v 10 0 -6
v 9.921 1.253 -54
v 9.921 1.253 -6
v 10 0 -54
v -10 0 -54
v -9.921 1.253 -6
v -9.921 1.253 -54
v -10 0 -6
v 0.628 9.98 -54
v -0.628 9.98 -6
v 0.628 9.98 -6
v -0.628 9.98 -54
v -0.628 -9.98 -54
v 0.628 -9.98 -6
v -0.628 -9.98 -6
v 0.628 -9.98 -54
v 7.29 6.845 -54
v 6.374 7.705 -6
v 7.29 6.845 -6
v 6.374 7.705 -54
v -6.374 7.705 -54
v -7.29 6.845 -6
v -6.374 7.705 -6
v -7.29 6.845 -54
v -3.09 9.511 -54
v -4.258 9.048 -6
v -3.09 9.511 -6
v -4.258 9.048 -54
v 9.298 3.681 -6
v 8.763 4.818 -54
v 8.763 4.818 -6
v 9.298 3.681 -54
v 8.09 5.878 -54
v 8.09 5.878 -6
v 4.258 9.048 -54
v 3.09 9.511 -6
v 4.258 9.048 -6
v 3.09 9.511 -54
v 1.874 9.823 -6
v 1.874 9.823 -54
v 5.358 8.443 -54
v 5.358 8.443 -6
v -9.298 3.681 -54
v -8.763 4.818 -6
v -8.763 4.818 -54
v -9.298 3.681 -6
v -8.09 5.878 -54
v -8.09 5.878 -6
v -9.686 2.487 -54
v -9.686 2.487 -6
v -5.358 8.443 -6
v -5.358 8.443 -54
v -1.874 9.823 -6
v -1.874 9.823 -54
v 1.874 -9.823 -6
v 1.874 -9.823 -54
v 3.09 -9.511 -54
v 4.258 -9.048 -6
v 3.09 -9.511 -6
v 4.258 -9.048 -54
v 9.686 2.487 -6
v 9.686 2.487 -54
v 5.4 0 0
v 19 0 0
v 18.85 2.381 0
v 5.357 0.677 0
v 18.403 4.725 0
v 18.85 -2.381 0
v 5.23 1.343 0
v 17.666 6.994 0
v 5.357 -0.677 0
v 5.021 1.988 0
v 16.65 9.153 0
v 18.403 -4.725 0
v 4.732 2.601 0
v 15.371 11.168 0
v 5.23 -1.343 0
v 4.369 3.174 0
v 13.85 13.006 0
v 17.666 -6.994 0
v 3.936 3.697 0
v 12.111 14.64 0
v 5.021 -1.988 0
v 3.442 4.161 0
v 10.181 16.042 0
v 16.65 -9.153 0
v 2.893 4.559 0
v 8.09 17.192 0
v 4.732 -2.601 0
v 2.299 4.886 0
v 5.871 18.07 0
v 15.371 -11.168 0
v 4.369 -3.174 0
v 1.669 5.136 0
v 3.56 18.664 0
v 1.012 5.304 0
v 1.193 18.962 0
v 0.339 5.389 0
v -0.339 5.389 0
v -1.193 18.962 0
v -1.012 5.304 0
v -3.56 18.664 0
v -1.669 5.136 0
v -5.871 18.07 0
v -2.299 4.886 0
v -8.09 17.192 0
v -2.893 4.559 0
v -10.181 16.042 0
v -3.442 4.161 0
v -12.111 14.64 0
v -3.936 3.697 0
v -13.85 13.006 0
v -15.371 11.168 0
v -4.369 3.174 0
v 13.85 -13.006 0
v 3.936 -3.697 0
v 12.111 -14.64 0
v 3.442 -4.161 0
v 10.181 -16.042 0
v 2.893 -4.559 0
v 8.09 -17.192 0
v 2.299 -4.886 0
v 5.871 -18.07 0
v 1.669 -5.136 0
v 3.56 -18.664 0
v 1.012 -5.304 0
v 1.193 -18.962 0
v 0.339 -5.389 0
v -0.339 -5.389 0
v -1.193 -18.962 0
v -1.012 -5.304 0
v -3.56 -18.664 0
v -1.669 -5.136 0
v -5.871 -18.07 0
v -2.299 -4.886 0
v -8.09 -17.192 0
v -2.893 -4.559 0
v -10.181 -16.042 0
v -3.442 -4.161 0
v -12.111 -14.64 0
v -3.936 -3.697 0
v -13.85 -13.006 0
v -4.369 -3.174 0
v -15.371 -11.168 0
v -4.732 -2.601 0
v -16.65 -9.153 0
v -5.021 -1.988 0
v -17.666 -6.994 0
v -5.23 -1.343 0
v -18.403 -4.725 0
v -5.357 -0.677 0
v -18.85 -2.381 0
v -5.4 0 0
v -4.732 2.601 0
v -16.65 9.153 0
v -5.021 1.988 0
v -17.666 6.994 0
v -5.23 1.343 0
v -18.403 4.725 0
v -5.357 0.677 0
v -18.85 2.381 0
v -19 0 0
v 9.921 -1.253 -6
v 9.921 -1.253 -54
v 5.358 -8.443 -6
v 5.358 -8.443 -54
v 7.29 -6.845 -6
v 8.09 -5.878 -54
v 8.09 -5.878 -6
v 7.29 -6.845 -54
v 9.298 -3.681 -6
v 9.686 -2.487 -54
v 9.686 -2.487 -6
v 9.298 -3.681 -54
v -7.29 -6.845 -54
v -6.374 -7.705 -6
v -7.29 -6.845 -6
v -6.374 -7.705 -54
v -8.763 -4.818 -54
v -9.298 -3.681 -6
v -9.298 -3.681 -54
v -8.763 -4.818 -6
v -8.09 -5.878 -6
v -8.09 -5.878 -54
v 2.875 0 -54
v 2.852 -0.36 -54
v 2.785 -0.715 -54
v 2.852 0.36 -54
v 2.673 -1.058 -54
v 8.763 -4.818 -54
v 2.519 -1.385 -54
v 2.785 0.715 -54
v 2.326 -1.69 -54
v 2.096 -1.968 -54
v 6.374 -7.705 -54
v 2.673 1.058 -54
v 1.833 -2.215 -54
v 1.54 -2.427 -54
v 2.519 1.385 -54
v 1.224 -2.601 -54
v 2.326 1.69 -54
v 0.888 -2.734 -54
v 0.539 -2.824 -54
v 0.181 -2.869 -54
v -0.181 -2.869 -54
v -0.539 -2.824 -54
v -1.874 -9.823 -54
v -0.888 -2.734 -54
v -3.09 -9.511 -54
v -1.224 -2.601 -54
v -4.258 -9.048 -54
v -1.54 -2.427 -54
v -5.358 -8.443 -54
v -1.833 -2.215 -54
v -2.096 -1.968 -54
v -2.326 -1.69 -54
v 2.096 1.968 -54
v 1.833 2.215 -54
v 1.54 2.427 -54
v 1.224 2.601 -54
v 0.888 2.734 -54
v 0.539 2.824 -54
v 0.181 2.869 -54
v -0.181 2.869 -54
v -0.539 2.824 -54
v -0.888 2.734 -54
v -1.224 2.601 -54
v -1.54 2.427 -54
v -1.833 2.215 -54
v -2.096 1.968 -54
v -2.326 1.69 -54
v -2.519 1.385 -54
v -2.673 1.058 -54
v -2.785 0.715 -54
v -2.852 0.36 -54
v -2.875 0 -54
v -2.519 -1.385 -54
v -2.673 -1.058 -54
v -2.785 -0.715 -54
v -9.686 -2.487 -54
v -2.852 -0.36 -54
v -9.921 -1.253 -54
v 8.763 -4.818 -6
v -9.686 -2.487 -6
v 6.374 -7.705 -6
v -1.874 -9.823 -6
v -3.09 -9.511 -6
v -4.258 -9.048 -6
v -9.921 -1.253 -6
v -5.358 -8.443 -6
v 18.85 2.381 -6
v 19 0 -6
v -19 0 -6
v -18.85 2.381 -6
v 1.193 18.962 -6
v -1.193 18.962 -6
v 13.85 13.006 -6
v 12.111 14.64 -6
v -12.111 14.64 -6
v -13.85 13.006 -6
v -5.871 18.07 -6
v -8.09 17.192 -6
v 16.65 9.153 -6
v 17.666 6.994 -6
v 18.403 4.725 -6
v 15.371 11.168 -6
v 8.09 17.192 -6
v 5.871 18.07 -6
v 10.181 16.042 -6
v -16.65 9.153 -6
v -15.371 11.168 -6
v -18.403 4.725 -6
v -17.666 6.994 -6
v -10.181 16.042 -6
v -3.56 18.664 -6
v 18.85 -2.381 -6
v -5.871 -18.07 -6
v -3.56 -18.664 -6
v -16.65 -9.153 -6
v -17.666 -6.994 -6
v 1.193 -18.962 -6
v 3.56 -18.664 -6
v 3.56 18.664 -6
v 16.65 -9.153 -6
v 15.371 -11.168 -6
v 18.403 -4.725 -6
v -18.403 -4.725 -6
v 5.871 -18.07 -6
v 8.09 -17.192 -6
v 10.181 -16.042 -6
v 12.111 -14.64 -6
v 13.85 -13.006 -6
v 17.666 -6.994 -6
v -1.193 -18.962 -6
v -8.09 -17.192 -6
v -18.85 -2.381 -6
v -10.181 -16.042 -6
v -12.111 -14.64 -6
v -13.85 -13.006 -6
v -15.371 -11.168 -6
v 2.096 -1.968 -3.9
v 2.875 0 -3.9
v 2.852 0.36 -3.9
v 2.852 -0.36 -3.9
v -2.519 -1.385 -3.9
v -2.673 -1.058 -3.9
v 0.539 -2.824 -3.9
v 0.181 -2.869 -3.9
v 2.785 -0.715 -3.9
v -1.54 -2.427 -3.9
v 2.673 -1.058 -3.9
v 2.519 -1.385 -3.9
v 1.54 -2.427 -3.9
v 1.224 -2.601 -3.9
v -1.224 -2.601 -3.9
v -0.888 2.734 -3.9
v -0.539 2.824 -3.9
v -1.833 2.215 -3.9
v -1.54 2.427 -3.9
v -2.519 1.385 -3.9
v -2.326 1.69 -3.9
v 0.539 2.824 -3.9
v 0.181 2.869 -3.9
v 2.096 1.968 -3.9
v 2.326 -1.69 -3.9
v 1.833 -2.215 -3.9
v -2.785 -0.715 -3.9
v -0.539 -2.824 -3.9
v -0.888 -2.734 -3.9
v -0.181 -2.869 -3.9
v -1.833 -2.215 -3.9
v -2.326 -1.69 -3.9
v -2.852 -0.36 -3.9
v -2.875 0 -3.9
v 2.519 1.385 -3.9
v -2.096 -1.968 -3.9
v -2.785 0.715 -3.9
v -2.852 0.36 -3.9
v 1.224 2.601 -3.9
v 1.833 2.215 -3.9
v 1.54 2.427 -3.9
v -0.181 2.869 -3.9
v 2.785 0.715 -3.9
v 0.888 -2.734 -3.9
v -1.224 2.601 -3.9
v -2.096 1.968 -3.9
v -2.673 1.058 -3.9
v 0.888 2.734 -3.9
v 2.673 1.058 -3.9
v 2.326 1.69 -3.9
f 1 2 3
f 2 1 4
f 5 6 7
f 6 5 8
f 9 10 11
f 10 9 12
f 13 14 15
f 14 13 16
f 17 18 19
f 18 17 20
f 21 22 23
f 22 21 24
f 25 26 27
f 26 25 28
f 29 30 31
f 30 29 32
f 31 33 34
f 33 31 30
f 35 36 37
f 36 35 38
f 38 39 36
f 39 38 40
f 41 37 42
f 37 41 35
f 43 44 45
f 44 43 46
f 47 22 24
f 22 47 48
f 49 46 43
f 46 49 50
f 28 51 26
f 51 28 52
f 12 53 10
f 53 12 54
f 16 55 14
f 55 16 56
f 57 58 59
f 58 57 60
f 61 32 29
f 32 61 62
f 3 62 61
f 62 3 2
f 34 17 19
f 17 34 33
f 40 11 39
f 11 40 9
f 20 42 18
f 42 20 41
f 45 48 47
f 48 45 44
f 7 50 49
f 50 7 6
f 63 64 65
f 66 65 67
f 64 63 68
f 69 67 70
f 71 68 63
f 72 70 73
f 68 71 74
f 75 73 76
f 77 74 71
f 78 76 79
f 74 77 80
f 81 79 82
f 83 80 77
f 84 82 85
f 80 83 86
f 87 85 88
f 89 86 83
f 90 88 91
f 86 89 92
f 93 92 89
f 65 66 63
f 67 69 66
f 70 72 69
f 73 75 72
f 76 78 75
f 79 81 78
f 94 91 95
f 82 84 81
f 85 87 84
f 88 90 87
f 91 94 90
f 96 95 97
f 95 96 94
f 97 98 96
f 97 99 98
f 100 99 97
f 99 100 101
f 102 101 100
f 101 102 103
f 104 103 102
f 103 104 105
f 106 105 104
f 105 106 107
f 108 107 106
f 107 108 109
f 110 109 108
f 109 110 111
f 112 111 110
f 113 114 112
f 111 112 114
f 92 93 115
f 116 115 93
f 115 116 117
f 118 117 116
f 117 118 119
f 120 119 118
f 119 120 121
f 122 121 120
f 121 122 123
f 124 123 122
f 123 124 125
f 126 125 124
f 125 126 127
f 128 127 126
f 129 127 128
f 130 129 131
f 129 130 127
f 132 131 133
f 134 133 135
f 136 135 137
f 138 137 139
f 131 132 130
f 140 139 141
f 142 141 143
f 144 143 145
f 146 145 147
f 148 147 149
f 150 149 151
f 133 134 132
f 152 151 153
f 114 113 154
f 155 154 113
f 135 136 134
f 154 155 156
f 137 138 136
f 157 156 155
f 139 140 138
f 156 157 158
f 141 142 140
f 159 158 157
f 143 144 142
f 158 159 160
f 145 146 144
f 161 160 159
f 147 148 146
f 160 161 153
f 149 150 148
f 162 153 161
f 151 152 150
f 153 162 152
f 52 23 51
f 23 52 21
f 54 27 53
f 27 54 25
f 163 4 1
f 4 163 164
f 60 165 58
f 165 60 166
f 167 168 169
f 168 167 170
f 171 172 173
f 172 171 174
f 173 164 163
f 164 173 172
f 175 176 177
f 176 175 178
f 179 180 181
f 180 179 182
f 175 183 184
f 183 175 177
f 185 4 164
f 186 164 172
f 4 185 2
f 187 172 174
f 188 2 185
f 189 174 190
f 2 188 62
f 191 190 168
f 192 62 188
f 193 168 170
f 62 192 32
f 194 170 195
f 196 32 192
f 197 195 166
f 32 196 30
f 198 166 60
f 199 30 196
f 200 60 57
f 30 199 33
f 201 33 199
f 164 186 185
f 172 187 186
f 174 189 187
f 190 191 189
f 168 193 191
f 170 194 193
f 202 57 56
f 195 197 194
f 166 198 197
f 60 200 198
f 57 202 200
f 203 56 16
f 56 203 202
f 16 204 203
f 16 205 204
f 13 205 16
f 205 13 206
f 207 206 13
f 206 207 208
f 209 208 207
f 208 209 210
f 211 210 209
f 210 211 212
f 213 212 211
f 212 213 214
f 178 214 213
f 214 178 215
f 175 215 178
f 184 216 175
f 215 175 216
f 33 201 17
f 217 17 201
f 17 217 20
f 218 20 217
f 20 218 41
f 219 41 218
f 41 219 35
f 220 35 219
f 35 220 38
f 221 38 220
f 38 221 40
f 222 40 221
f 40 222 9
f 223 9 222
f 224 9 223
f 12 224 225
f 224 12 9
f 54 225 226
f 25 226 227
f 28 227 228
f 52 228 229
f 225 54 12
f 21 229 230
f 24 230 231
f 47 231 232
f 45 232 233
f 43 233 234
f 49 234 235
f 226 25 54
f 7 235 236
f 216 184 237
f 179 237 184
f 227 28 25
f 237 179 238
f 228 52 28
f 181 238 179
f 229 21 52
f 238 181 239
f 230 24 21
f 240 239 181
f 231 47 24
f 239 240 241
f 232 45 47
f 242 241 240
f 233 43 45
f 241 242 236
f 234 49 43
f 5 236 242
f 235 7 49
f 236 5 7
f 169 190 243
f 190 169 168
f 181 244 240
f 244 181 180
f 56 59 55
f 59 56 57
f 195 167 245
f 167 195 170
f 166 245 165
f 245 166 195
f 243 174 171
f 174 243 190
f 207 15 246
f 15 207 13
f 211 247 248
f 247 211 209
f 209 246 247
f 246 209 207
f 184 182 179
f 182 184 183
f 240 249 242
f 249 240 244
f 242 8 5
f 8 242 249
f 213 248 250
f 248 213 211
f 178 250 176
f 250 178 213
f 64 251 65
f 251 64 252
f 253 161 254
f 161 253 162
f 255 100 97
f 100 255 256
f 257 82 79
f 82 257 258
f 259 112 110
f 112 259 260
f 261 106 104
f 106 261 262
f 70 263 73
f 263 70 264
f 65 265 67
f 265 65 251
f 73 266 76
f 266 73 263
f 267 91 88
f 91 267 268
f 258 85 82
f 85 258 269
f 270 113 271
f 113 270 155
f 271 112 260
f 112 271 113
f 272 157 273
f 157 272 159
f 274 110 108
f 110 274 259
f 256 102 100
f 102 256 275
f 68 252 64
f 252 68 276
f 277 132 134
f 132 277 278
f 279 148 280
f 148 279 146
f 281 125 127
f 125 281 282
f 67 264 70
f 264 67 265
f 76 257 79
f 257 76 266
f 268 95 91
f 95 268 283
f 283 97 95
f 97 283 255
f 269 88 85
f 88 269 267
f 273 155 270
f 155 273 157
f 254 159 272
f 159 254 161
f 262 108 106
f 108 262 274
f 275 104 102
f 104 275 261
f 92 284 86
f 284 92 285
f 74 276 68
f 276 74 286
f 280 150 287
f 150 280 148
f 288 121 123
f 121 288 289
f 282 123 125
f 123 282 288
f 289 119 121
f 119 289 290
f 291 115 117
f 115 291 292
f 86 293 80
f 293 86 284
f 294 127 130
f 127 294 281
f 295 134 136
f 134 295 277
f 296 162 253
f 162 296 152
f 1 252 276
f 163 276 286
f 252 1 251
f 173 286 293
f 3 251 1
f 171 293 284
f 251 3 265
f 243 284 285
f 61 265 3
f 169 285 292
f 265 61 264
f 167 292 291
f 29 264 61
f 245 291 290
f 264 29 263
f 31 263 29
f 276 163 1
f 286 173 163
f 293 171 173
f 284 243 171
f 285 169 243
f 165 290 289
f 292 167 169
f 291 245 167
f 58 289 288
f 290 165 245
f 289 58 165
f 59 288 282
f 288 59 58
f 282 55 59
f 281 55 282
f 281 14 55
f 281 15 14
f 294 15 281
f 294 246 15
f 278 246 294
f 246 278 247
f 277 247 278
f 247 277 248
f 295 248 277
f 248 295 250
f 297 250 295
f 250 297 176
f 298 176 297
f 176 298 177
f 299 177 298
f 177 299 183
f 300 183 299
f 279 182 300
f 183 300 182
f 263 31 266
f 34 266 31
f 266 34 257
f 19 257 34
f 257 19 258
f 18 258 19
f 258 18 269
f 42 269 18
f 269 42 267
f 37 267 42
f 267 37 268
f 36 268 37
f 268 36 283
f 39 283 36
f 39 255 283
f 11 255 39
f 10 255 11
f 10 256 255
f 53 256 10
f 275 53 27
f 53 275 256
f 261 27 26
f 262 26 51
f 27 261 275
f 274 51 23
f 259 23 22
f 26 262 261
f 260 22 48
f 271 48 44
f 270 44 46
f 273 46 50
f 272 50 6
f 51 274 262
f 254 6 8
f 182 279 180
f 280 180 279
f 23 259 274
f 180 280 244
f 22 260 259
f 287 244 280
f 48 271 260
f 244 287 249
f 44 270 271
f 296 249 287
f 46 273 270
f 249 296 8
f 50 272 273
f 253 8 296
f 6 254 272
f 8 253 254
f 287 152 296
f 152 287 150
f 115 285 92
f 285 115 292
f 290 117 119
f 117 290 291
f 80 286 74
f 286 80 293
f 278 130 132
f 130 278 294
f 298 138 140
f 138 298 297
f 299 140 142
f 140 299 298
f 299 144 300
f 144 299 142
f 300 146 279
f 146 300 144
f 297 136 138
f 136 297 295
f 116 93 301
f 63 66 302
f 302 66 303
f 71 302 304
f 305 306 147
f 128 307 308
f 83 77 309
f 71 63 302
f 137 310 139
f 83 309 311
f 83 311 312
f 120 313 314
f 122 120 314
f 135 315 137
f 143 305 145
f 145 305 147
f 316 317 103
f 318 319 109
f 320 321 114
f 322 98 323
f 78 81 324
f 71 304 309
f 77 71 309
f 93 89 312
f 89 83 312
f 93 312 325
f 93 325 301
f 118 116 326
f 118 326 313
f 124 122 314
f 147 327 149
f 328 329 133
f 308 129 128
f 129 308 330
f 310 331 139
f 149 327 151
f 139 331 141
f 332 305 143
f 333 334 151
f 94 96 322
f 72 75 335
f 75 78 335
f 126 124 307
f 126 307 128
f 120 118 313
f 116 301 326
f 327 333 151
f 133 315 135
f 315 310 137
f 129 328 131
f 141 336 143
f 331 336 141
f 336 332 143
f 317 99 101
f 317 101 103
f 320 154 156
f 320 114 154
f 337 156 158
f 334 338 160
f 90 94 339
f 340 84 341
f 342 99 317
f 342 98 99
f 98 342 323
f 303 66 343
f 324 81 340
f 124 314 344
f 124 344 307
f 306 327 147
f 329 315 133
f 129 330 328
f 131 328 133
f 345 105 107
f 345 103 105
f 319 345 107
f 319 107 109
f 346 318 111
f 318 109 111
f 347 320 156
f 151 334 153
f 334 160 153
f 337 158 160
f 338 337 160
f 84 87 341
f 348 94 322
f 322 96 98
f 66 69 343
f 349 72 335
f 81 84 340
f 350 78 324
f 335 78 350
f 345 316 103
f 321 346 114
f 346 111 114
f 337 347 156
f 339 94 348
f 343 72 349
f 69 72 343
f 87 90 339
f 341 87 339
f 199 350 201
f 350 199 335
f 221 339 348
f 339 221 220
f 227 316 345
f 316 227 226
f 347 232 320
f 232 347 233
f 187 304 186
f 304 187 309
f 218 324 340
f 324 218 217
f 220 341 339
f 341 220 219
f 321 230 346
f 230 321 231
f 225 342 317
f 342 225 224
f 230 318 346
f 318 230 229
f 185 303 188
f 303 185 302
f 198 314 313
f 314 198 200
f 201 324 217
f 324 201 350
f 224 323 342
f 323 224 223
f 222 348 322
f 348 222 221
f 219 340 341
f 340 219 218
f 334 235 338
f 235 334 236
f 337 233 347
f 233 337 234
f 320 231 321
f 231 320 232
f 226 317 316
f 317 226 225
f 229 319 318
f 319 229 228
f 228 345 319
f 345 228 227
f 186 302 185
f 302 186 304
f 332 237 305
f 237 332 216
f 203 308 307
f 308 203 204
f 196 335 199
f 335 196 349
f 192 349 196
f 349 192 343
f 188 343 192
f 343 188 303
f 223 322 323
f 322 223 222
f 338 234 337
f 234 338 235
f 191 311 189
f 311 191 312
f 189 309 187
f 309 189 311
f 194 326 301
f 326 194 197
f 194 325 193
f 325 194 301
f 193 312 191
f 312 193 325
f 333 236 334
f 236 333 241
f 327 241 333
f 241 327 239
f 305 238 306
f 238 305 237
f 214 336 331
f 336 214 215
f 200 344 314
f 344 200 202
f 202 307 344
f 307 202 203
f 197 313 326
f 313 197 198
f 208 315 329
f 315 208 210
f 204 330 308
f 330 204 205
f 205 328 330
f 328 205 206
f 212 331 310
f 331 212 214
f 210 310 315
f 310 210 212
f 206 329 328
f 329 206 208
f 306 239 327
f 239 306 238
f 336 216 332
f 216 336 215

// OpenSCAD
$fn = 50;


difference() {
	union() {
		translate(v = [0, 0, -54.0000000000]) {
			cylinder(h = 54, r = 10.0000000000);
		}
		translate(v = [0, 0, -6.0000000000]) {
			cylinder(h = 6, r = 19.0000000000);
		}
	}
	union() {
		translate(v = [0, 0, 0]) {
			rotate(a = [0, 0, 0]) {
				difference() {
					union() {
						#translate(v = [0, 0, -54.0000000000]) {
							cylinder(h = 54, r = 2.6000000000);
						}
						#translate(v = [0, 0, -3.9000000000]) {
							cylinder(h = 3.9000000000, r = 10.0000000000, r1 = 2.8750000000, r2 = 5.4000000000);
						}
						#translate(v = [0, 0, -54.0000000000]) {
							cylinder(h = 54, r = 2.8750000000);
						}
						#translate(v = [0, 0, -54.0000000000]) {
							cylinder(h = 54, r = 2.6000000000);
						}
					}
					union();
				}
			}
		}
	}
}
